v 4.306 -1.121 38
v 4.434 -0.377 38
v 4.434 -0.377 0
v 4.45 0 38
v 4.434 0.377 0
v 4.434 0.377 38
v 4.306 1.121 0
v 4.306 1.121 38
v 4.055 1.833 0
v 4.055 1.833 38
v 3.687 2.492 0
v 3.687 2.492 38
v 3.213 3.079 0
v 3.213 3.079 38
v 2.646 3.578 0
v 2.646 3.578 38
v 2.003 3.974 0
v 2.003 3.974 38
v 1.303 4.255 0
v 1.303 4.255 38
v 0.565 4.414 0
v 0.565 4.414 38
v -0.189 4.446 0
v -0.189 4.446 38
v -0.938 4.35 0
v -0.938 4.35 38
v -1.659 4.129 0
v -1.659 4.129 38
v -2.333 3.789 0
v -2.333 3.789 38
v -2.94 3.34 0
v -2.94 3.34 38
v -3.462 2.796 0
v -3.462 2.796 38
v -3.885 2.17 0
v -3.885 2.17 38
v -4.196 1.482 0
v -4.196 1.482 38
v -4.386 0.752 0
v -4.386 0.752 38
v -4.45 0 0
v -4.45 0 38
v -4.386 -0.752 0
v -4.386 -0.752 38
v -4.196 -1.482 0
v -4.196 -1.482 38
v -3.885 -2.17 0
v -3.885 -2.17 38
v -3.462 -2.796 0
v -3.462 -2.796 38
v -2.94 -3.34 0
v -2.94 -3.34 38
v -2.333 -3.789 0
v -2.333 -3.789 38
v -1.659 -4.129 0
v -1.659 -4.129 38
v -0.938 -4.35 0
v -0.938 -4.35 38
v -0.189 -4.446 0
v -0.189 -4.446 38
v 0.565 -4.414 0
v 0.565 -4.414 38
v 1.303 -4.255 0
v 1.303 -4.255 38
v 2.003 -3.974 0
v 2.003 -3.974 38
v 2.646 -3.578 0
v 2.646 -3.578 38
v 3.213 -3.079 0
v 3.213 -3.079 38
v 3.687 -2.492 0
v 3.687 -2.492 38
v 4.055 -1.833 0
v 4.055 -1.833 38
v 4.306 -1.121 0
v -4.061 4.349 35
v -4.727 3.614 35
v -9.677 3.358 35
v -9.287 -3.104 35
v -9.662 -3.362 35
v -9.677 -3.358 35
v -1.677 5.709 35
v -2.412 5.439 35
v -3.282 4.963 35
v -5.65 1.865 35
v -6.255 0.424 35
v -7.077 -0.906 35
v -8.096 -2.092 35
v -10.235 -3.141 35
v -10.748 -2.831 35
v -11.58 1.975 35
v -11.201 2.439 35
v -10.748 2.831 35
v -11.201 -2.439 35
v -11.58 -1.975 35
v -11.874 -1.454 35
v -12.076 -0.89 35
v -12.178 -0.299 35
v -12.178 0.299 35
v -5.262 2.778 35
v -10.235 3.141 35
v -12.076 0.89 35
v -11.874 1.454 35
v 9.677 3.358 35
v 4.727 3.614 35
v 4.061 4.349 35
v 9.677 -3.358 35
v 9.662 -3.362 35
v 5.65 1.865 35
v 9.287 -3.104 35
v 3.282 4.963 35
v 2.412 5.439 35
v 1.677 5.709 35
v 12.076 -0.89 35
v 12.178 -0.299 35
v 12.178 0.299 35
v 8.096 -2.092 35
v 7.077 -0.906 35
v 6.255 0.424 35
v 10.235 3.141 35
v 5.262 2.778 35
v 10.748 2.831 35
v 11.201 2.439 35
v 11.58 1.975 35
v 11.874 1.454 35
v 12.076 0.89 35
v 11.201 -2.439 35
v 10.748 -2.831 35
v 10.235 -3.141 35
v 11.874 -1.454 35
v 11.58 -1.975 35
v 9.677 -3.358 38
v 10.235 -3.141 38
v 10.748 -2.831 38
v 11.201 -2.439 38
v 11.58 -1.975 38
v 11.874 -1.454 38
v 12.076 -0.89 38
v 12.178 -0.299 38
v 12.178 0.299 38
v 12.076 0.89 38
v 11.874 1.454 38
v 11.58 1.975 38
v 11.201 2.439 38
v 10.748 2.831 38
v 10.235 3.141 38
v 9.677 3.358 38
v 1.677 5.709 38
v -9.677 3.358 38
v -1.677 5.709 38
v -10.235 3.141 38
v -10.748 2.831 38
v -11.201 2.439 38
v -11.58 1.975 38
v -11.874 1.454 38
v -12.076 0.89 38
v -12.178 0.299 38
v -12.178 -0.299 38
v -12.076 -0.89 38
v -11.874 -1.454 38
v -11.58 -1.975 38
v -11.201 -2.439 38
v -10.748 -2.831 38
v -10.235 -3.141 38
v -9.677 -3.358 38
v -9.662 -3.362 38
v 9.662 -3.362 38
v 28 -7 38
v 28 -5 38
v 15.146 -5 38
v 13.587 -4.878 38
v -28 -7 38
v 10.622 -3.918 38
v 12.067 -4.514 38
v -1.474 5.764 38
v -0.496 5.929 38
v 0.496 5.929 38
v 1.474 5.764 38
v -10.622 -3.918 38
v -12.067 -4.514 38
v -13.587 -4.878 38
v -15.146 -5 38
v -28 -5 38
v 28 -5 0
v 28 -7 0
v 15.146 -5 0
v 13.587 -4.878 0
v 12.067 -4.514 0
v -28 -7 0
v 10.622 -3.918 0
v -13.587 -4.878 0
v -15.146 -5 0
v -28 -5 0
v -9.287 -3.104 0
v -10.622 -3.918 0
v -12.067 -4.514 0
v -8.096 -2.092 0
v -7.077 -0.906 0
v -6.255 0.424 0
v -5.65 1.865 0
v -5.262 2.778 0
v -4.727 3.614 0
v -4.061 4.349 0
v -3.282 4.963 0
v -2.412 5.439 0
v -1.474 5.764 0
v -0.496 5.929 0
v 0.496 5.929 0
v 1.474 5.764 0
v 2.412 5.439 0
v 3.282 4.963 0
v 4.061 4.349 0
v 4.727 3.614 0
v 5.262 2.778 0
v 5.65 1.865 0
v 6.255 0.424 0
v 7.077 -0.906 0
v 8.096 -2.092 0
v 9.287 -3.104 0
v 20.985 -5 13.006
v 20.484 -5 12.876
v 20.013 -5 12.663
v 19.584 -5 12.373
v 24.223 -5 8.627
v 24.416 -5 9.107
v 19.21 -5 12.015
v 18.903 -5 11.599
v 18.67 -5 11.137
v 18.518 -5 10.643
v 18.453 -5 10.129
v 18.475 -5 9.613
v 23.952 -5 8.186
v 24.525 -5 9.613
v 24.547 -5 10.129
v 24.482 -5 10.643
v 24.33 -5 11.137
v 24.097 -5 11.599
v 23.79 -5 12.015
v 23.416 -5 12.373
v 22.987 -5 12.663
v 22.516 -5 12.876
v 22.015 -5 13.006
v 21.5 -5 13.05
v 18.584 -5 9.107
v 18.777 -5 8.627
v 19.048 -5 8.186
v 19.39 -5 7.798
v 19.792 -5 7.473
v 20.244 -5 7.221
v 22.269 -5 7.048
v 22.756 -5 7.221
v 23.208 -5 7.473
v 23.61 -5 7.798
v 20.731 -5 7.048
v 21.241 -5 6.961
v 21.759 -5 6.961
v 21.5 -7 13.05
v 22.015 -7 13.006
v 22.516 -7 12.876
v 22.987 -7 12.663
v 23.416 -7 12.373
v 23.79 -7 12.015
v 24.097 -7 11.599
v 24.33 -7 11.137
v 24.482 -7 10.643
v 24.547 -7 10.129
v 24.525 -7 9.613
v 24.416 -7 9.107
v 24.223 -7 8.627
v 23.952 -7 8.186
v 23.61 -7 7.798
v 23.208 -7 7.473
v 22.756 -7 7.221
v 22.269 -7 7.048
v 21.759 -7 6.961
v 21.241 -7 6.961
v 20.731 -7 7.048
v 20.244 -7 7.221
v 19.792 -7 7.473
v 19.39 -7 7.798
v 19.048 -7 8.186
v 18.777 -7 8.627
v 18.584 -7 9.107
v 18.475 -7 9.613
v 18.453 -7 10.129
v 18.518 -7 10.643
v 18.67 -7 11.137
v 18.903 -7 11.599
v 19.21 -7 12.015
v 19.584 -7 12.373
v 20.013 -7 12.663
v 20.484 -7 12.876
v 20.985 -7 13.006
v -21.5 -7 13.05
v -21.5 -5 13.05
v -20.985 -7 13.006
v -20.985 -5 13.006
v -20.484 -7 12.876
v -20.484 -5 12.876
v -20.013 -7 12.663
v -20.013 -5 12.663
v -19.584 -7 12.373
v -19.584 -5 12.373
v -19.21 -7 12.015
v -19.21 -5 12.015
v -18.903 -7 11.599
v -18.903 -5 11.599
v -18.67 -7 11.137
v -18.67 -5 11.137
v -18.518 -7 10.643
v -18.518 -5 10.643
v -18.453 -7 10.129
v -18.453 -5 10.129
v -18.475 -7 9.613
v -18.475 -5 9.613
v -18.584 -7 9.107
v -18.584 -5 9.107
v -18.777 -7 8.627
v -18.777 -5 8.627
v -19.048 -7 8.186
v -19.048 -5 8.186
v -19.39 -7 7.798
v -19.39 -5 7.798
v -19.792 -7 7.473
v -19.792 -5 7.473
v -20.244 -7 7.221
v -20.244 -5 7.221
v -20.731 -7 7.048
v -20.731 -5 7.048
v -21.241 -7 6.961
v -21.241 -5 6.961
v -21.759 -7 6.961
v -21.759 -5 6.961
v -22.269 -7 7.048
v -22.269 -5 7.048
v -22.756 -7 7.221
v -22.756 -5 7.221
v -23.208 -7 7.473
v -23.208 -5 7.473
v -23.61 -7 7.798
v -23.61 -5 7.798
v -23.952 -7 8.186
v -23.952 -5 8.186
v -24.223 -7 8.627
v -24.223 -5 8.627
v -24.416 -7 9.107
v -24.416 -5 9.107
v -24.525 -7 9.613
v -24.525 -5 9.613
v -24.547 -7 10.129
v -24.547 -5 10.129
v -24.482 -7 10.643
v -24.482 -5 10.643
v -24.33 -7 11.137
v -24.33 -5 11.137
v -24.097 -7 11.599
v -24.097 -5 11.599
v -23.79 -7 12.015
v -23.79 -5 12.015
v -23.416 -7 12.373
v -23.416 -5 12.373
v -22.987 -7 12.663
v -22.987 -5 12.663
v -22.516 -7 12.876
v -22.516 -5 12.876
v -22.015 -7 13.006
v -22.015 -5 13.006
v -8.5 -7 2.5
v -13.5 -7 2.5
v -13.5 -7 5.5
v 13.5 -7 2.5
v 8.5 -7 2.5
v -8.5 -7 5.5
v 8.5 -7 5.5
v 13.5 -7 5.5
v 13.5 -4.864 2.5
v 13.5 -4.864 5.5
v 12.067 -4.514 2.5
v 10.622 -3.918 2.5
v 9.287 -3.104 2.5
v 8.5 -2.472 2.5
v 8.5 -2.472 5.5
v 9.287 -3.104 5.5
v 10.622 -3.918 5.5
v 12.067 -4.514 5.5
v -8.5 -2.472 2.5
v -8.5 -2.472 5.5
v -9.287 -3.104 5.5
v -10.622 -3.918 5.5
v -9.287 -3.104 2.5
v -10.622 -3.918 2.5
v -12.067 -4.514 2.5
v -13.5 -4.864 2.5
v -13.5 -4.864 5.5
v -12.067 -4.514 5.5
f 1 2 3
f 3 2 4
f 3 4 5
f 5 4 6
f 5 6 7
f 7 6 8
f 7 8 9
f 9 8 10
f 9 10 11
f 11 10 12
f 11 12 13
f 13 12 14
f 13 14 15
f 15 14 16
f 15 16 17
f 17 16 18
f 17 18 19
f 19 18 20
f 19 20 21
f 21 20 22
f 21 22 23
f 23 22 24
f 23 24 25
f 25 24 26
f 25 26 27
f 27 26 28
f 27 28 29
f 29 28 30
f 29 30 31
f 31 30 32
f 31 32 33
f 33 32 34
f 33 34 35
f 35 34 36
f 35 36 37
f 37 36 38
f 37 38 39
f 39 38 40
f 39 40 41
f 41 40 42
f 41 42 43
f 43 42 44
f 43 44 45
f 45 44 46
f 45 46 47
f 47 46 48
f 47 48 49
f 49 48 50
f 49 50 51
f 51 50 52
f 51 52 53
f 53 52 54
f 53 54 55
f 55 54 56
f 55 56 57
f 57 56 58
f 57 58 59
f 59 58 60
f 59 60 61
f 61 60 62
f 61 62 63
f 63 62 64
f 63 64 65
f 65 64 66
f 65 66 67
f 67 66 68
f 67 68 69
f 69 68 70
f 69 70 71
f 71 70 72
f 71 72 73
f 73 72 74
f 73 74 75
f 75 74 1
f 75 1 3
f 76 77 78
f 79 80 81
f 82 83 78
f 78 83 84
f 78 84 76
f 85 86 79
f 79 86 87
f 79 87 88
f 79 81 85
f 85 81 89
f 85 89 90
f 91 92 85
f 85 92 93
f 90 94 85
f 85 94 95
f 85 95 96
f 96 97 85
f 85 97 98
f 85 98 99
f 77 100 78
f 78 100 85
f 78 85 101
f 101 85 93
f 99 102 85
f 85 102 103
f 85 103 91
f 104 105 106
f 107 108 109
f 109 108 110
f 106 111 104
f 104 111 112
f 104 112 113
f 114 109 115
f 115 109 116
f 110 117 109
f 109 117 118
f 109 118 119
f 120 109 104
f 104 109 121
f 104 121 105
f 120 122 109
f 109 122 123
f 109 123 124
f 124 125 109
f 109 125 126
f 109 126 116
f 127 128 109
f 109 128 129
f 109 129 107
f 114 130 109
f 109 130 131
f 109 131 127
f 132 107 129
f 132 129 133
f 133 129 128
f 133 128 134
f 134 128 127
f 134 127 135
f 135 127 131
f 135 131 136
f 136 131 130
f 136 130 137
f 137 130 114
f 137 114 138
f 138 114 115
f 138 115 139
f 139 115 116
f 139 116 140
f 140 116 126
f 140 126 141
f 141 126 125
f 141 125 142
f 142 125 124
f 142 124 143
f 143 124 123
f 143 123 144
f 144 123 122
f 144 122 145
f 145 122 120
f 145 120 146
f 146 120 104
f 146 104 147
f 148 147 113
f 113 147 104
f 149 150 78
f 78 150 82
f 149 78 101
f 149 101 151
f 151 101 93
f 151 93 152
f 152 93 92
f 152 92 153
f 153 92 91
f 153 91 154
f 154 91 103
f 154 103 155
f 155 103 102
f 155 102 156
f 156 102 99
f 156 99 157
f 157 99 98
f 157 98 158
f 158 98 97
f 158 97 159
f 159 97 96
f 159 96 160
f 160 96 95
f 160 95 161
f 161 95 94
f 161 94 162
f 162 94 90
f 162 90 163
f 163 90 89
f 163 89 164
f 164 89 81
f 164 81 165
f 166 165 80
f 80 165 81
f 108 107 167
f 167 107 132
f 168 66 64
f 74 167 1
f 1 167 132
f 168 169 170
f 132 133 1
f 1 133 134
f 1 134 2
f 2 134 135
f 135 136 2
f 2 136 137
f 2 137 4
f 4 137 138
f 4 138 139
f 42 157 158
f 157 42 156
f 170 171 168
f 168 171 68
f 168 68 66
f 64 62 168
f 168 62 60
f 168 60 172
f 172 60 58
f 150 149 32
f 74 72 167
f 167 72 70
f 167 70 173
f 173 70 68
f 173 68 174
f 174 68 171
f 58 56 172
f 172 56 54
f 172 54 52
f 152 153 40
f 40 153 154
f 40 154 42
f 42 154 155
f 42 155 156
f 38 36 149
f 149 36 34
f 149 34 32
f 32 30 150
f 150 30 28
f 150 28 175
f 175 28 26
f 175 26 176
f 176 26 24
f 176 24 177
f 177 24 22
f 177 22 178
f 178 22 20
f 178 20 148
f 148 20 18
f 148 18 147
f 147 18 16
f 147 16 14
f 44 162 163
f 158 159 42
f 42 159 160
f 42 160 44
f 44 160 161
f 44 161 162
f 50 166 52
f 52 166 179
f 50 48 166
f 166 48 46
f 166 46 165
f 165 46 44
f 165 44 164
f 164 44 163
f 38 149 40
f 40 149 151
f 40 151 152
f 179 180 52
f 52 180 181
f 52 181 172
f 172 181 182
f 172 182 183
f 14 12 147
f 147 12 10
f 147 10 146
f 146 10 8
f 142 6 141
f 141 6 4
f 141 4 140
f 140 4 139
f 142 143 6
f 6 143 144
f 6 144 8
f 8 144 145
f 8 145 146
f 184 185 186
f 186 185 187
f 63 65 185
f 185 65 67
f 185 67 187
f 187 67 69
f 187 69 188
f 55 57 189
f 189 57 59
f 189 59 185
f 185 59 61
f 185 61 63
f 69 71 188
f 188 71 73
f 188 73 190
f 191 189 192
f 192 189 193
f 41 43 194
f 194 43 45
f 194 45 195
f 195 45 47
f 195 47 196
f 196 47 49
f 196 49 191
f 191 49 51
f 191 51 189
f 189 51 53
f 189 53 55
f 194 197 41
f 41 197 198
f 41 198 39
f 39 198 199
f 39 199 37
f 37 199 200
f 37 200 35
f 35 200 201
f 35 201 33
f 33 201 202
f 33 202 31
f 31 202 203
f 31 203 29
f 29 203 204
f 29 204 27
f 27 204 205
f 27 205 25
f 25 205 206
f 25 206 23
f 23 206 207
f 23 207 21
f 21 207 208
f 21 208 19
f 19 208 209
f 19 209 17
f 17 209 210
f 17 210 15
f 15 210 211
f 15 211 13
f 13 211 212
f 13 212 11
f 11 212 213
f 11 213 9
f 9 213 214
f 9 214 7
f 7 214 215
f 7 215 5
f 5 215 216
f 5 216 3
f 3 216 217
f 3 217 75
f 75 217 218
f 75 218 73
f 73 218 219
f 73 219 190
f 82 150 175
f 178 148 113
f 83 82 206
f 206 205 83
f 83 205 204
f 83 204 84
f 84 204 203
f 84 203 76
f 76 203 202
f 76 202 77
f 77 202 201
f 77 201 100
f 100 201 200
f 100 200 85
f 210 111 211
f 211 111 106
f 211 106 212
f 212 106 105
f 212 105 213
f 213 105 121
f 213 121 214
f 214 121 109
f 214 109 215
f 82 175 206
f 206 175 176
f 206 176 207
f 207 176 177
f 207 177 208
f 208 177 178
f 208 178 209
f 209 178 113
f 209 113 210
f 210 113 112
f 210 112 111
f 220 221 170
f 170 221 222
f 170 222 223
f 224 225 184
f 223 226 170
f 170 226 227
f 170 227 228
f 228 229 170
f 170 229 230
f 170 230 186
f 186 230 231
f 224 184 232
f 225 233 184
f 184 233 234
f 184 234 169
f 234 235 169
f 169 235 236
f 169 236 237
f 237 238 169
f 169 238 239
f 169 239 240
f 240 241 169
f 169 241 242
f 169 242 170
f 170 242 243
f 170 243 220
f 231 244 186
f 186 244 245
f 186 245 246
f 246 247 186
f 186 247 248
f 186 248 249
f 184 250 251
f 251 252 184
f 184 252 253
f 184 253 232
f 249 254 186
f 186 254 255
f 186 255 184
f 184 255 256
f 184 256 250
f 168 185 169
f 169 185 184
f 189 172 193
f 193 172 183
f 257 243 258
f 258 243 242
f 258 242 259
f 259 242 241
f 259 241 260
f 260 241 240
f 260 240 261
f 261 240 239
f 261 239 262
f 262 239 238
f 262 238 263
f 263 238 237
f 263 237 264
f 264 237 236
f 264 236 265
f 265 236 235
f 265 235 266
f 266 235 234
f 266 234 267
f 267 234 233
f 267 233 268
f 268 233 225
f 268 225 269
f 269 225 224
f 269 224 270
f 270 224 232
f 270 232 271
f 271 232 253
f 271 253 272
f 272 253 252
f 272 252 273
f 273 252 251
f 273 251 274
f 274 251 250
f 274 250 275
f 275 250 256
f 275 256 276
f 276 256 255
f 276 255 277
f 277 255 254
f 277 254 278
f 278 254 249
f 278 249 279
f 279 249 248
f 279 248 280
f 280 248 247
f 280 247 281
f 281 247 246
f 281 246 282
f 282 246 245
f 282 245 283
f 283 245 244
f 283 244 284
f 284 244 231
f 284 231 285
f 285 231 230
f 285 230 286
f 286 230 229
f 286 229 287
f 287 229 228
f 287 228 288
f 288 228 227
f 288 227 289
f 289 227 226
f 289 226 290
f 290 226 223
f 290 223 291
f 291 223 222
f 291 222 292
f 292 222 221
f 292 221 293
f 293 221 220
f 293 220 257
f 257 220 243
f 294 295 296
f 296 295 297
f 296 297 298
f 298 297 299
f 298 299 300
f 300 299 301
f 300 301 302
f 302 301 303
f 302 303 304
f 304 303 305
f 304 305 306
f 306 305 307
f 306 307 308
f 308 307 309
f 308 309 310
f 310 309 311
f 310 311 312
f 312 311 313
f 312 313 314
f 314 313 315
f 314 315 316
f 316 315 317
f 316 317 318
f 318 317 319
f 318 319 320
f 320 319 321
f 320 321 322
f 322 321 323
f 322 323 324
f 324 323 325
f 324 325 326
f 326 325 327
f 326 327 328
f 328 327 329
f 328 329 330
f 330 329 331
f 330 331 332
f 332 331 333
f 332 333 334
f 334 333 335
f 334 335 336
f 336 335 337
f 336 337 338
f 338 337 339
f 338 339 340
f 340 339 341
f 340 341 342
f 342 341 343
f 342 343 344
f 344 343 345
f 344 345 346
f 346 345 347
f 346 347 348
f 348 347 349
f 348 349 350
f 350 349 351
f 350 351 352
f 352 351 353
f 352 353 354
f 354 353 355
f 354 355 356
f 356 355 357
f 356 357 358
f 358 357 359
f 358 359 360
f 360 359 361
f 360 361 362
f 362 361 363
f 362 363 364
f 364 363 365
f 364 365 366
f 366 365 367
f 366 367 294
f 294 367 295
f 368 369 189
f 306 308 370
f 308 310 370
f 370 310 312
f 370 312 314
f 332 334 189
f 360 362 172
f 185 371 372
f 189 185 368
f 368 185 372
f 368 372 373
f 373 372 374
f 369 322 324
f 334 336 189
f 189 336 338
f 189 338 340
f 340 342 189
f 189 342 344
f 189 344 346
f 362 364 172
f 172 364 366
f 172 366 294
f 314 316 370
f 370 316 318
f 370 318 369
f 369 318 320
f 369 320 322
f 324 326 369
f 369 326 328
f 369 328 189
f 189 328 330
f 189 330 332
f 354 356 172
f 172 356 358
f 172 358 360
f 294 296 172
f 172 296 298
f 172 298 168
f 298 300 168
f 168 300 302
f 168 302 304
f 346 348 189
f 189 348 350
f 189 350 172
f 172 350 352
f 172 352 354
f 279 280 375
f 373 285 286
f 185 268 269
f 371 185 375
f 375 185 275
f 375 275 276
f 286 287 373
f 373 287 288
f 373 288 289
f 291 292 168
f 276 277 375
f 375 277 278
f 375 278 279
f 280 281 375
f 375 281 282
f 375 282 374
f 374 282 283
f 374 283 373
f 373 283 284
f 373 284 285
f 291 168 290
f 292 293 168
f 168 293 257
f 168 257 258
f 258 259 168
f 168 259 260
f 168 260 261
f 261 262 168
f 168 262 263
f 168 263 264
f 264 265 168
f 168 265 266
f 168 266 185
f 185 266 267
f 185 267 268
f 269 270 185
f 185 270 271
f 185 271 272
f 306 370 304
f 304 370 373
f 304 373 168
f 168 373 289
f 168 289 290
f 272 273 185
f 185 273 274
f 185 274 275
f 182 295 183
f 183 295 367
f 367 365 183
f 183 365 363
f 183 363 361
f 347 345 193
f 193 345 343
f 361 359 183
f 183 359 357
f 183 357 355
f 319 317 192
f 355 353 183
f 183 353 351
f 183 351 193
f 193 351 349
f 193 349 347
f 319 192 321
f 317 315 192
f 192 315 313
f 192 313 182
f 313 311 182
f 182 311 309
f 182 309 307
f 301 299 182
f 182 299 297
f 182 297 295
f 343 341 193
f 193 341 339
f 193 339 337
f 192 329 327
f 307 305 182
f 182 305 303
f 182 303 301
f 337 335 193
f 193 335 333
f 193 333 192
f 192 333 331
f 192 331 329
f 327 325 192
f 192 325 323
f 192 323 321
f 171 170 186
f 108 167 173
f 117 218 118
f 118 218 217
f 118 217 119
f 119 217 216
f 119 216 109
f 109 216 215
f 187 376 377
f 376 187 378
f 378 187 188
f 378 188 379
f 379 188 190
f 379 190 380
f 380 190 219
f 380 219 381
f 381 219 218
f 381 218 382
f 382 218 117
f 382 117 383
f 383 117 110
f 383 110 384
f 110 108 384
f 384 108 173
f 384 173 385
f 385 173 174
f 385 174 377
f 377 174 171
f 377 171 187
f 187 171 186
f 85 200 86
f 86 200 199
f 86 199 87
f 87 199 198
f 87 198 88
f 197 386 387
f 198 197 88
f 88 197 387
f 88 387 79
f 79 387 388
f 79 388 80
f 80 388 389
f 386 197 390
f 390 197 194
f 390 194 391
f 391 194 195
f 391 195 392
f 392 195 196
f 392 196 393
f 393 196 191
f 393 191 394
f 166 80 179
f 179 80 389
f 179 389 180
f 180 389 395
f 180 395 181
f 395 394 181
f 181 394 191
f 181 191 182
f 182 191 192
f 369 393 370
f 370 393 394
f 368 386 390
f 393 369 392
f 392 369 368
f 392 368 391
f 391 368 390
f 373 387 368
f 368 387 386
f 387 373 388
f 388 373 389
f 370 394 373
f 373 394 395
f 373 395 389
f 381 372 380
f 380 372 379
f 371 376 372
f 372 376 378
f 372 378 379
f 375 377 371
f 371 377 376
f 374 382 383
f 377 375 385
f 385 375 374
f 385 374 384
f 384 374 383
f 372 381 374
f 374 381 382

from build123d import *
from build123d.topology import SkipClean

# Parameters (mm, degrees)
ESQUISSE1_R                  = 4.45
BOSS_EXTRU_1_DEPTH           = 1.5
ESQUISSE1_2_R                = 5.95
ESQUISSE1_2_R_2              = 4.45
EXTRU_MINCE1_DEPTH           = 35
ESQUISSE2_R                  = 5.95
ESQUISSE2_R_2                = 4.45
BOSS_EXTRU_2_DEPTH           = 3
ESQUISSE4_W                  = 28
ESQUISSE4_H                  = 38
ESQUISSE4_R                  = 3.05
BOSS_EXTRU_3_DEPTH           = 2
CONG_1_R                     = 10
ESQUISSE5_R                  = 4.45
ENL_V_MAT_EXTRU_1_DEPTH      = 10
ENL_V_MAT_EXTRU_4_DEPTH      = 49.455159684
ENL_V_MAT_EXTRU_4_DEPTH_BACK = 49.455159684
ESQUISSE8_W                  = 5
ESQUISSE8_H                  = 3


with BuildPart() as part:
    # Esquisse1 → Boss.-Extru.1 (new body)
    with BuildSketch(Plane.XY):
        Circle(ESQUISSE1_R)
    extrude(amount=BOSS_EXTRU_1_DEPTH)

    # Esquisse1<2> → Extru.-Mince1 (add)
    with BuildSketch(Plane.XY):
        Circle(ESQUISSE1_2_R)
        Circle(ESQUISSE1_2_R_2, mode=Mode.SUBTRACT)
    extrude(amount=EXTRU_MINCE1_DEPTH)

    # Esquisse2 → Boss.-Extru.2 (add)
    # profile 1 of 3: a face of its own
    with BuildSketch(Plane.XY.offset(35)):
        with BuildLine():
            Line((9.677371186, 3.358041833), (1.677371186, 5.708671115))
            ThreePointArc((1.677371186, 5.708671115), (4.76355217, 3.565258858), (5.95, 0))
            ThreePointArc((5.95, 0), (4.76355217, -3.565258858), (1.677371186, -5.708671115))
            Line((1.677371186, -5.708671115), (9.677371186, -3.358041833))
            ThreePointArc((9.677371186, -3.358041833), (11.492771765, -2.097211093), (12.190682253, 0))
            ThreePointArc((12.190682253, 0), (11.492771765, 2.097211093), (9.677371186, 3.358041833))
        make_face()
    # profile 2 of 3: a face of its own
    with BuildSketch(Plane.XY.offset(35)):
        with BuildLine():
            ThreePointArc((-1.677371186, -5.708671115), (-5.95, 0), (-1.677371186, 5.708671115))
            Line((-1.677371186, 5.708671115), (-9.677371186, 3.358041833))
            ThreePointArc((-9.677371186, 3.358041833), (-11.492771765, 2.097211093), (-12.190682253, 0))
            ThreePointArc((-12.190682253, 0), (-11.492771765, -2.097211093), (-9.677371186, -3.358041833))
            Line((-9.677371186, -3.358041833), (-1.677371186, -5.708671115))
        make_face()
    # profile 3 of 3: a face of its own
    with BuildSketch(Plane.XY.offset(35)):
        with Locations(Location((0, 0, 0), (0, 0, 106.374299713))):
            Circle(ESQUISSE2_R)
        Circle(ESQUISSE2_R_2, mode=Mode.SUBTRACT)
    extrude(amount=BOSS_EXTRU_2_DEPTH)

    # Esquisse4 → Boss.-Extru.3 (add)
    # profile 1 of 4: a face of its own
    with BuildSketch(Plane(origin=(0, -5, 0), x_dir=(1, 0, 0), z_dir=(0, 1, 0))):
        with Locations((14, -19)):
            Rectangle(ESQUISSE4_W, ESQUISSE4_H)
        with Locations(Location((21.5, -10, 0), (0, 0, 270))):
            Circle(ESQUISSE4_R, mode=Mode.SUBTRACT)
    # profile 2 of 4: a face of its own
    with BuildSketch(Plane(origin=(0, -5, 0), x_dir=(1, 0, 0), z_dir=(0, 1, 0))):
        with Locations((-14, -19)):
            Rectangle(ESQUISSE4_W, ESQUISSE4_H)
        with Locations(Location((-21.5, -10, 0), (0, 0, 270))):
            Circle(ESQUISSE4_R, mode=Mode.SUBTRACT)
    # profile 3 of 4: a face of its own
    with BuildSketch(Plane(origin=(0, -5, 0), x_dir=(1, 0, 0), z_dir=(0, 1, 0))):
        with Locations((-14, -19)):
            Rectangle(ESQUISSE4_W, ESQUISSE4_H)
        with Locations(Location((-21.5, -10, 0), (0, 0, 270))):
            Circle(ESQUISSE4_R, mode=Mode.SUBTRACT)
    # profile 4 of 4: a face of its own
    with BuildSketch(Plane(origin=(0, -5, 0), x_dir=(1, 0, 0), z_dir=(0, 1, 0))):
        with Locations((14, -19)):
            Rectangle(ESQUISSE4_W, ESQUISSE4_H)
        with Locations(Location((21.5, -10, 0), (0, 0, 270))):
            Circle(ESQUISSE4_R, mode=Mode.SUBTRACT)
    extrude(amount=-BOSS_EXTRU_3_DEPTH)

    # Congé1
    # the kernel refuses this fillet: 10 mm, written as the material it adds along each edge
    with BuildSketch(Plane(origin=(-3.225290685, -5, 64.801871004), x_dir=(-0.33303824301553137, 0.9429133198174304, 0), z_dir=(0, 0, -1))) as cong_1_piece_1_section:
        with BuildLine():
            CenterArc((13.399198301, -7.90985002), CONG_1_R, 127.722343038, 71.730945551)
            Line((3.970065103, -11.24023245), (0, 0))
            ThreePointArc((0, 0), (3.640421456, -1.243639238), (7.280842913, 0))
        make_face()
    cong_1_piece_1 = extrude(amount=64.801871004, mode=Mode.PRIVATE)
    cong_1_piece_1 = split(cong_1_piece_1, bisect_by=Plane(origin=(-7.500746377, -3.487839575, 38), z_dir=(0, 0, -1)), keep=Keep.TOP, mode=Mode.PRIVATE)
    add(cong_1_piece_1)
    with BuildSketch(Plane(origin=(3.225290685, -5, 64.801871004), x_dir=(0.3330382430155311, 0.9429133198174307, 0), z_dir=(0, 0, -1))) as cong_1_piece_2_section:
        with BuildLine():
            CenterArc((13.399198301, 7.90985002), CONG_1_R, 160.546711411, 71.730945551)
            Line((3.970065103, 11.24023245), (0, 0))
            ThreePointArc((0, 0), (3.640421456, 1.243639238), (7.280842913, 0))
        make_face()
    cong_1_piece_2 = extrude(amount=64.801871004, mode=Mode.PRIVATE)
    cong_1_piece_2 = split(cong_1_piece_2, bisect_by=Plane(origin=(7.500746377, -3.487839575, 38), z_dir=(0, 0, -1)), keep=Keep.TOP, mode=Mode.PRIVATE)
    add(cong_1_piece_2)

    # Esquisse5 → Enlèv. mat.-Extru.1 (cut)
    with SkipClean():  # the faces are left unmerged after this step: merging them gives an invalid solid
        with BuildSketch(Plane(origin=(0, 0, 0), x_dir=(-1, 0, 0), z_dir=(0, 0, -1))):
            Circle(ESQUISSE5_R)
        extrude(amount=-ENL_V_MAT_EXTRU_1_DEPTH, mode=Mode.SUBTRACT)
    add(part.part.scale(1), mode=Mode.REPLACE)  # the faces are merged on a copy

    # Esquisse8 → Enlèv. mat.-Extru.4 (cut, two sides: drawn at the far end of the back side and taken through both)
    with BuildSketch(Plane(origin=(0, -5, 0), x_dir=(1, 0, 0), z_dir=(0, 1, 0)).offset(-ENL_V_MAT_EXTRU_4_DEPTH_BACK)):
        with Locations((-11, -4)):
            Rectangle(ESQUISSE8_W, ESQUISSE8_H)
        with Locations((11, -4)):
            Rectangle(ESQUISSE8_W, ESQUISSE8_H)
    extrude(amount=ENL_V_MAT_EXTRU_4_DEPTH + ENL_V_MAT_EXTRU_4_DEPTH_BACK, mode=Mode.SUBTRACT)


solid = part.part
